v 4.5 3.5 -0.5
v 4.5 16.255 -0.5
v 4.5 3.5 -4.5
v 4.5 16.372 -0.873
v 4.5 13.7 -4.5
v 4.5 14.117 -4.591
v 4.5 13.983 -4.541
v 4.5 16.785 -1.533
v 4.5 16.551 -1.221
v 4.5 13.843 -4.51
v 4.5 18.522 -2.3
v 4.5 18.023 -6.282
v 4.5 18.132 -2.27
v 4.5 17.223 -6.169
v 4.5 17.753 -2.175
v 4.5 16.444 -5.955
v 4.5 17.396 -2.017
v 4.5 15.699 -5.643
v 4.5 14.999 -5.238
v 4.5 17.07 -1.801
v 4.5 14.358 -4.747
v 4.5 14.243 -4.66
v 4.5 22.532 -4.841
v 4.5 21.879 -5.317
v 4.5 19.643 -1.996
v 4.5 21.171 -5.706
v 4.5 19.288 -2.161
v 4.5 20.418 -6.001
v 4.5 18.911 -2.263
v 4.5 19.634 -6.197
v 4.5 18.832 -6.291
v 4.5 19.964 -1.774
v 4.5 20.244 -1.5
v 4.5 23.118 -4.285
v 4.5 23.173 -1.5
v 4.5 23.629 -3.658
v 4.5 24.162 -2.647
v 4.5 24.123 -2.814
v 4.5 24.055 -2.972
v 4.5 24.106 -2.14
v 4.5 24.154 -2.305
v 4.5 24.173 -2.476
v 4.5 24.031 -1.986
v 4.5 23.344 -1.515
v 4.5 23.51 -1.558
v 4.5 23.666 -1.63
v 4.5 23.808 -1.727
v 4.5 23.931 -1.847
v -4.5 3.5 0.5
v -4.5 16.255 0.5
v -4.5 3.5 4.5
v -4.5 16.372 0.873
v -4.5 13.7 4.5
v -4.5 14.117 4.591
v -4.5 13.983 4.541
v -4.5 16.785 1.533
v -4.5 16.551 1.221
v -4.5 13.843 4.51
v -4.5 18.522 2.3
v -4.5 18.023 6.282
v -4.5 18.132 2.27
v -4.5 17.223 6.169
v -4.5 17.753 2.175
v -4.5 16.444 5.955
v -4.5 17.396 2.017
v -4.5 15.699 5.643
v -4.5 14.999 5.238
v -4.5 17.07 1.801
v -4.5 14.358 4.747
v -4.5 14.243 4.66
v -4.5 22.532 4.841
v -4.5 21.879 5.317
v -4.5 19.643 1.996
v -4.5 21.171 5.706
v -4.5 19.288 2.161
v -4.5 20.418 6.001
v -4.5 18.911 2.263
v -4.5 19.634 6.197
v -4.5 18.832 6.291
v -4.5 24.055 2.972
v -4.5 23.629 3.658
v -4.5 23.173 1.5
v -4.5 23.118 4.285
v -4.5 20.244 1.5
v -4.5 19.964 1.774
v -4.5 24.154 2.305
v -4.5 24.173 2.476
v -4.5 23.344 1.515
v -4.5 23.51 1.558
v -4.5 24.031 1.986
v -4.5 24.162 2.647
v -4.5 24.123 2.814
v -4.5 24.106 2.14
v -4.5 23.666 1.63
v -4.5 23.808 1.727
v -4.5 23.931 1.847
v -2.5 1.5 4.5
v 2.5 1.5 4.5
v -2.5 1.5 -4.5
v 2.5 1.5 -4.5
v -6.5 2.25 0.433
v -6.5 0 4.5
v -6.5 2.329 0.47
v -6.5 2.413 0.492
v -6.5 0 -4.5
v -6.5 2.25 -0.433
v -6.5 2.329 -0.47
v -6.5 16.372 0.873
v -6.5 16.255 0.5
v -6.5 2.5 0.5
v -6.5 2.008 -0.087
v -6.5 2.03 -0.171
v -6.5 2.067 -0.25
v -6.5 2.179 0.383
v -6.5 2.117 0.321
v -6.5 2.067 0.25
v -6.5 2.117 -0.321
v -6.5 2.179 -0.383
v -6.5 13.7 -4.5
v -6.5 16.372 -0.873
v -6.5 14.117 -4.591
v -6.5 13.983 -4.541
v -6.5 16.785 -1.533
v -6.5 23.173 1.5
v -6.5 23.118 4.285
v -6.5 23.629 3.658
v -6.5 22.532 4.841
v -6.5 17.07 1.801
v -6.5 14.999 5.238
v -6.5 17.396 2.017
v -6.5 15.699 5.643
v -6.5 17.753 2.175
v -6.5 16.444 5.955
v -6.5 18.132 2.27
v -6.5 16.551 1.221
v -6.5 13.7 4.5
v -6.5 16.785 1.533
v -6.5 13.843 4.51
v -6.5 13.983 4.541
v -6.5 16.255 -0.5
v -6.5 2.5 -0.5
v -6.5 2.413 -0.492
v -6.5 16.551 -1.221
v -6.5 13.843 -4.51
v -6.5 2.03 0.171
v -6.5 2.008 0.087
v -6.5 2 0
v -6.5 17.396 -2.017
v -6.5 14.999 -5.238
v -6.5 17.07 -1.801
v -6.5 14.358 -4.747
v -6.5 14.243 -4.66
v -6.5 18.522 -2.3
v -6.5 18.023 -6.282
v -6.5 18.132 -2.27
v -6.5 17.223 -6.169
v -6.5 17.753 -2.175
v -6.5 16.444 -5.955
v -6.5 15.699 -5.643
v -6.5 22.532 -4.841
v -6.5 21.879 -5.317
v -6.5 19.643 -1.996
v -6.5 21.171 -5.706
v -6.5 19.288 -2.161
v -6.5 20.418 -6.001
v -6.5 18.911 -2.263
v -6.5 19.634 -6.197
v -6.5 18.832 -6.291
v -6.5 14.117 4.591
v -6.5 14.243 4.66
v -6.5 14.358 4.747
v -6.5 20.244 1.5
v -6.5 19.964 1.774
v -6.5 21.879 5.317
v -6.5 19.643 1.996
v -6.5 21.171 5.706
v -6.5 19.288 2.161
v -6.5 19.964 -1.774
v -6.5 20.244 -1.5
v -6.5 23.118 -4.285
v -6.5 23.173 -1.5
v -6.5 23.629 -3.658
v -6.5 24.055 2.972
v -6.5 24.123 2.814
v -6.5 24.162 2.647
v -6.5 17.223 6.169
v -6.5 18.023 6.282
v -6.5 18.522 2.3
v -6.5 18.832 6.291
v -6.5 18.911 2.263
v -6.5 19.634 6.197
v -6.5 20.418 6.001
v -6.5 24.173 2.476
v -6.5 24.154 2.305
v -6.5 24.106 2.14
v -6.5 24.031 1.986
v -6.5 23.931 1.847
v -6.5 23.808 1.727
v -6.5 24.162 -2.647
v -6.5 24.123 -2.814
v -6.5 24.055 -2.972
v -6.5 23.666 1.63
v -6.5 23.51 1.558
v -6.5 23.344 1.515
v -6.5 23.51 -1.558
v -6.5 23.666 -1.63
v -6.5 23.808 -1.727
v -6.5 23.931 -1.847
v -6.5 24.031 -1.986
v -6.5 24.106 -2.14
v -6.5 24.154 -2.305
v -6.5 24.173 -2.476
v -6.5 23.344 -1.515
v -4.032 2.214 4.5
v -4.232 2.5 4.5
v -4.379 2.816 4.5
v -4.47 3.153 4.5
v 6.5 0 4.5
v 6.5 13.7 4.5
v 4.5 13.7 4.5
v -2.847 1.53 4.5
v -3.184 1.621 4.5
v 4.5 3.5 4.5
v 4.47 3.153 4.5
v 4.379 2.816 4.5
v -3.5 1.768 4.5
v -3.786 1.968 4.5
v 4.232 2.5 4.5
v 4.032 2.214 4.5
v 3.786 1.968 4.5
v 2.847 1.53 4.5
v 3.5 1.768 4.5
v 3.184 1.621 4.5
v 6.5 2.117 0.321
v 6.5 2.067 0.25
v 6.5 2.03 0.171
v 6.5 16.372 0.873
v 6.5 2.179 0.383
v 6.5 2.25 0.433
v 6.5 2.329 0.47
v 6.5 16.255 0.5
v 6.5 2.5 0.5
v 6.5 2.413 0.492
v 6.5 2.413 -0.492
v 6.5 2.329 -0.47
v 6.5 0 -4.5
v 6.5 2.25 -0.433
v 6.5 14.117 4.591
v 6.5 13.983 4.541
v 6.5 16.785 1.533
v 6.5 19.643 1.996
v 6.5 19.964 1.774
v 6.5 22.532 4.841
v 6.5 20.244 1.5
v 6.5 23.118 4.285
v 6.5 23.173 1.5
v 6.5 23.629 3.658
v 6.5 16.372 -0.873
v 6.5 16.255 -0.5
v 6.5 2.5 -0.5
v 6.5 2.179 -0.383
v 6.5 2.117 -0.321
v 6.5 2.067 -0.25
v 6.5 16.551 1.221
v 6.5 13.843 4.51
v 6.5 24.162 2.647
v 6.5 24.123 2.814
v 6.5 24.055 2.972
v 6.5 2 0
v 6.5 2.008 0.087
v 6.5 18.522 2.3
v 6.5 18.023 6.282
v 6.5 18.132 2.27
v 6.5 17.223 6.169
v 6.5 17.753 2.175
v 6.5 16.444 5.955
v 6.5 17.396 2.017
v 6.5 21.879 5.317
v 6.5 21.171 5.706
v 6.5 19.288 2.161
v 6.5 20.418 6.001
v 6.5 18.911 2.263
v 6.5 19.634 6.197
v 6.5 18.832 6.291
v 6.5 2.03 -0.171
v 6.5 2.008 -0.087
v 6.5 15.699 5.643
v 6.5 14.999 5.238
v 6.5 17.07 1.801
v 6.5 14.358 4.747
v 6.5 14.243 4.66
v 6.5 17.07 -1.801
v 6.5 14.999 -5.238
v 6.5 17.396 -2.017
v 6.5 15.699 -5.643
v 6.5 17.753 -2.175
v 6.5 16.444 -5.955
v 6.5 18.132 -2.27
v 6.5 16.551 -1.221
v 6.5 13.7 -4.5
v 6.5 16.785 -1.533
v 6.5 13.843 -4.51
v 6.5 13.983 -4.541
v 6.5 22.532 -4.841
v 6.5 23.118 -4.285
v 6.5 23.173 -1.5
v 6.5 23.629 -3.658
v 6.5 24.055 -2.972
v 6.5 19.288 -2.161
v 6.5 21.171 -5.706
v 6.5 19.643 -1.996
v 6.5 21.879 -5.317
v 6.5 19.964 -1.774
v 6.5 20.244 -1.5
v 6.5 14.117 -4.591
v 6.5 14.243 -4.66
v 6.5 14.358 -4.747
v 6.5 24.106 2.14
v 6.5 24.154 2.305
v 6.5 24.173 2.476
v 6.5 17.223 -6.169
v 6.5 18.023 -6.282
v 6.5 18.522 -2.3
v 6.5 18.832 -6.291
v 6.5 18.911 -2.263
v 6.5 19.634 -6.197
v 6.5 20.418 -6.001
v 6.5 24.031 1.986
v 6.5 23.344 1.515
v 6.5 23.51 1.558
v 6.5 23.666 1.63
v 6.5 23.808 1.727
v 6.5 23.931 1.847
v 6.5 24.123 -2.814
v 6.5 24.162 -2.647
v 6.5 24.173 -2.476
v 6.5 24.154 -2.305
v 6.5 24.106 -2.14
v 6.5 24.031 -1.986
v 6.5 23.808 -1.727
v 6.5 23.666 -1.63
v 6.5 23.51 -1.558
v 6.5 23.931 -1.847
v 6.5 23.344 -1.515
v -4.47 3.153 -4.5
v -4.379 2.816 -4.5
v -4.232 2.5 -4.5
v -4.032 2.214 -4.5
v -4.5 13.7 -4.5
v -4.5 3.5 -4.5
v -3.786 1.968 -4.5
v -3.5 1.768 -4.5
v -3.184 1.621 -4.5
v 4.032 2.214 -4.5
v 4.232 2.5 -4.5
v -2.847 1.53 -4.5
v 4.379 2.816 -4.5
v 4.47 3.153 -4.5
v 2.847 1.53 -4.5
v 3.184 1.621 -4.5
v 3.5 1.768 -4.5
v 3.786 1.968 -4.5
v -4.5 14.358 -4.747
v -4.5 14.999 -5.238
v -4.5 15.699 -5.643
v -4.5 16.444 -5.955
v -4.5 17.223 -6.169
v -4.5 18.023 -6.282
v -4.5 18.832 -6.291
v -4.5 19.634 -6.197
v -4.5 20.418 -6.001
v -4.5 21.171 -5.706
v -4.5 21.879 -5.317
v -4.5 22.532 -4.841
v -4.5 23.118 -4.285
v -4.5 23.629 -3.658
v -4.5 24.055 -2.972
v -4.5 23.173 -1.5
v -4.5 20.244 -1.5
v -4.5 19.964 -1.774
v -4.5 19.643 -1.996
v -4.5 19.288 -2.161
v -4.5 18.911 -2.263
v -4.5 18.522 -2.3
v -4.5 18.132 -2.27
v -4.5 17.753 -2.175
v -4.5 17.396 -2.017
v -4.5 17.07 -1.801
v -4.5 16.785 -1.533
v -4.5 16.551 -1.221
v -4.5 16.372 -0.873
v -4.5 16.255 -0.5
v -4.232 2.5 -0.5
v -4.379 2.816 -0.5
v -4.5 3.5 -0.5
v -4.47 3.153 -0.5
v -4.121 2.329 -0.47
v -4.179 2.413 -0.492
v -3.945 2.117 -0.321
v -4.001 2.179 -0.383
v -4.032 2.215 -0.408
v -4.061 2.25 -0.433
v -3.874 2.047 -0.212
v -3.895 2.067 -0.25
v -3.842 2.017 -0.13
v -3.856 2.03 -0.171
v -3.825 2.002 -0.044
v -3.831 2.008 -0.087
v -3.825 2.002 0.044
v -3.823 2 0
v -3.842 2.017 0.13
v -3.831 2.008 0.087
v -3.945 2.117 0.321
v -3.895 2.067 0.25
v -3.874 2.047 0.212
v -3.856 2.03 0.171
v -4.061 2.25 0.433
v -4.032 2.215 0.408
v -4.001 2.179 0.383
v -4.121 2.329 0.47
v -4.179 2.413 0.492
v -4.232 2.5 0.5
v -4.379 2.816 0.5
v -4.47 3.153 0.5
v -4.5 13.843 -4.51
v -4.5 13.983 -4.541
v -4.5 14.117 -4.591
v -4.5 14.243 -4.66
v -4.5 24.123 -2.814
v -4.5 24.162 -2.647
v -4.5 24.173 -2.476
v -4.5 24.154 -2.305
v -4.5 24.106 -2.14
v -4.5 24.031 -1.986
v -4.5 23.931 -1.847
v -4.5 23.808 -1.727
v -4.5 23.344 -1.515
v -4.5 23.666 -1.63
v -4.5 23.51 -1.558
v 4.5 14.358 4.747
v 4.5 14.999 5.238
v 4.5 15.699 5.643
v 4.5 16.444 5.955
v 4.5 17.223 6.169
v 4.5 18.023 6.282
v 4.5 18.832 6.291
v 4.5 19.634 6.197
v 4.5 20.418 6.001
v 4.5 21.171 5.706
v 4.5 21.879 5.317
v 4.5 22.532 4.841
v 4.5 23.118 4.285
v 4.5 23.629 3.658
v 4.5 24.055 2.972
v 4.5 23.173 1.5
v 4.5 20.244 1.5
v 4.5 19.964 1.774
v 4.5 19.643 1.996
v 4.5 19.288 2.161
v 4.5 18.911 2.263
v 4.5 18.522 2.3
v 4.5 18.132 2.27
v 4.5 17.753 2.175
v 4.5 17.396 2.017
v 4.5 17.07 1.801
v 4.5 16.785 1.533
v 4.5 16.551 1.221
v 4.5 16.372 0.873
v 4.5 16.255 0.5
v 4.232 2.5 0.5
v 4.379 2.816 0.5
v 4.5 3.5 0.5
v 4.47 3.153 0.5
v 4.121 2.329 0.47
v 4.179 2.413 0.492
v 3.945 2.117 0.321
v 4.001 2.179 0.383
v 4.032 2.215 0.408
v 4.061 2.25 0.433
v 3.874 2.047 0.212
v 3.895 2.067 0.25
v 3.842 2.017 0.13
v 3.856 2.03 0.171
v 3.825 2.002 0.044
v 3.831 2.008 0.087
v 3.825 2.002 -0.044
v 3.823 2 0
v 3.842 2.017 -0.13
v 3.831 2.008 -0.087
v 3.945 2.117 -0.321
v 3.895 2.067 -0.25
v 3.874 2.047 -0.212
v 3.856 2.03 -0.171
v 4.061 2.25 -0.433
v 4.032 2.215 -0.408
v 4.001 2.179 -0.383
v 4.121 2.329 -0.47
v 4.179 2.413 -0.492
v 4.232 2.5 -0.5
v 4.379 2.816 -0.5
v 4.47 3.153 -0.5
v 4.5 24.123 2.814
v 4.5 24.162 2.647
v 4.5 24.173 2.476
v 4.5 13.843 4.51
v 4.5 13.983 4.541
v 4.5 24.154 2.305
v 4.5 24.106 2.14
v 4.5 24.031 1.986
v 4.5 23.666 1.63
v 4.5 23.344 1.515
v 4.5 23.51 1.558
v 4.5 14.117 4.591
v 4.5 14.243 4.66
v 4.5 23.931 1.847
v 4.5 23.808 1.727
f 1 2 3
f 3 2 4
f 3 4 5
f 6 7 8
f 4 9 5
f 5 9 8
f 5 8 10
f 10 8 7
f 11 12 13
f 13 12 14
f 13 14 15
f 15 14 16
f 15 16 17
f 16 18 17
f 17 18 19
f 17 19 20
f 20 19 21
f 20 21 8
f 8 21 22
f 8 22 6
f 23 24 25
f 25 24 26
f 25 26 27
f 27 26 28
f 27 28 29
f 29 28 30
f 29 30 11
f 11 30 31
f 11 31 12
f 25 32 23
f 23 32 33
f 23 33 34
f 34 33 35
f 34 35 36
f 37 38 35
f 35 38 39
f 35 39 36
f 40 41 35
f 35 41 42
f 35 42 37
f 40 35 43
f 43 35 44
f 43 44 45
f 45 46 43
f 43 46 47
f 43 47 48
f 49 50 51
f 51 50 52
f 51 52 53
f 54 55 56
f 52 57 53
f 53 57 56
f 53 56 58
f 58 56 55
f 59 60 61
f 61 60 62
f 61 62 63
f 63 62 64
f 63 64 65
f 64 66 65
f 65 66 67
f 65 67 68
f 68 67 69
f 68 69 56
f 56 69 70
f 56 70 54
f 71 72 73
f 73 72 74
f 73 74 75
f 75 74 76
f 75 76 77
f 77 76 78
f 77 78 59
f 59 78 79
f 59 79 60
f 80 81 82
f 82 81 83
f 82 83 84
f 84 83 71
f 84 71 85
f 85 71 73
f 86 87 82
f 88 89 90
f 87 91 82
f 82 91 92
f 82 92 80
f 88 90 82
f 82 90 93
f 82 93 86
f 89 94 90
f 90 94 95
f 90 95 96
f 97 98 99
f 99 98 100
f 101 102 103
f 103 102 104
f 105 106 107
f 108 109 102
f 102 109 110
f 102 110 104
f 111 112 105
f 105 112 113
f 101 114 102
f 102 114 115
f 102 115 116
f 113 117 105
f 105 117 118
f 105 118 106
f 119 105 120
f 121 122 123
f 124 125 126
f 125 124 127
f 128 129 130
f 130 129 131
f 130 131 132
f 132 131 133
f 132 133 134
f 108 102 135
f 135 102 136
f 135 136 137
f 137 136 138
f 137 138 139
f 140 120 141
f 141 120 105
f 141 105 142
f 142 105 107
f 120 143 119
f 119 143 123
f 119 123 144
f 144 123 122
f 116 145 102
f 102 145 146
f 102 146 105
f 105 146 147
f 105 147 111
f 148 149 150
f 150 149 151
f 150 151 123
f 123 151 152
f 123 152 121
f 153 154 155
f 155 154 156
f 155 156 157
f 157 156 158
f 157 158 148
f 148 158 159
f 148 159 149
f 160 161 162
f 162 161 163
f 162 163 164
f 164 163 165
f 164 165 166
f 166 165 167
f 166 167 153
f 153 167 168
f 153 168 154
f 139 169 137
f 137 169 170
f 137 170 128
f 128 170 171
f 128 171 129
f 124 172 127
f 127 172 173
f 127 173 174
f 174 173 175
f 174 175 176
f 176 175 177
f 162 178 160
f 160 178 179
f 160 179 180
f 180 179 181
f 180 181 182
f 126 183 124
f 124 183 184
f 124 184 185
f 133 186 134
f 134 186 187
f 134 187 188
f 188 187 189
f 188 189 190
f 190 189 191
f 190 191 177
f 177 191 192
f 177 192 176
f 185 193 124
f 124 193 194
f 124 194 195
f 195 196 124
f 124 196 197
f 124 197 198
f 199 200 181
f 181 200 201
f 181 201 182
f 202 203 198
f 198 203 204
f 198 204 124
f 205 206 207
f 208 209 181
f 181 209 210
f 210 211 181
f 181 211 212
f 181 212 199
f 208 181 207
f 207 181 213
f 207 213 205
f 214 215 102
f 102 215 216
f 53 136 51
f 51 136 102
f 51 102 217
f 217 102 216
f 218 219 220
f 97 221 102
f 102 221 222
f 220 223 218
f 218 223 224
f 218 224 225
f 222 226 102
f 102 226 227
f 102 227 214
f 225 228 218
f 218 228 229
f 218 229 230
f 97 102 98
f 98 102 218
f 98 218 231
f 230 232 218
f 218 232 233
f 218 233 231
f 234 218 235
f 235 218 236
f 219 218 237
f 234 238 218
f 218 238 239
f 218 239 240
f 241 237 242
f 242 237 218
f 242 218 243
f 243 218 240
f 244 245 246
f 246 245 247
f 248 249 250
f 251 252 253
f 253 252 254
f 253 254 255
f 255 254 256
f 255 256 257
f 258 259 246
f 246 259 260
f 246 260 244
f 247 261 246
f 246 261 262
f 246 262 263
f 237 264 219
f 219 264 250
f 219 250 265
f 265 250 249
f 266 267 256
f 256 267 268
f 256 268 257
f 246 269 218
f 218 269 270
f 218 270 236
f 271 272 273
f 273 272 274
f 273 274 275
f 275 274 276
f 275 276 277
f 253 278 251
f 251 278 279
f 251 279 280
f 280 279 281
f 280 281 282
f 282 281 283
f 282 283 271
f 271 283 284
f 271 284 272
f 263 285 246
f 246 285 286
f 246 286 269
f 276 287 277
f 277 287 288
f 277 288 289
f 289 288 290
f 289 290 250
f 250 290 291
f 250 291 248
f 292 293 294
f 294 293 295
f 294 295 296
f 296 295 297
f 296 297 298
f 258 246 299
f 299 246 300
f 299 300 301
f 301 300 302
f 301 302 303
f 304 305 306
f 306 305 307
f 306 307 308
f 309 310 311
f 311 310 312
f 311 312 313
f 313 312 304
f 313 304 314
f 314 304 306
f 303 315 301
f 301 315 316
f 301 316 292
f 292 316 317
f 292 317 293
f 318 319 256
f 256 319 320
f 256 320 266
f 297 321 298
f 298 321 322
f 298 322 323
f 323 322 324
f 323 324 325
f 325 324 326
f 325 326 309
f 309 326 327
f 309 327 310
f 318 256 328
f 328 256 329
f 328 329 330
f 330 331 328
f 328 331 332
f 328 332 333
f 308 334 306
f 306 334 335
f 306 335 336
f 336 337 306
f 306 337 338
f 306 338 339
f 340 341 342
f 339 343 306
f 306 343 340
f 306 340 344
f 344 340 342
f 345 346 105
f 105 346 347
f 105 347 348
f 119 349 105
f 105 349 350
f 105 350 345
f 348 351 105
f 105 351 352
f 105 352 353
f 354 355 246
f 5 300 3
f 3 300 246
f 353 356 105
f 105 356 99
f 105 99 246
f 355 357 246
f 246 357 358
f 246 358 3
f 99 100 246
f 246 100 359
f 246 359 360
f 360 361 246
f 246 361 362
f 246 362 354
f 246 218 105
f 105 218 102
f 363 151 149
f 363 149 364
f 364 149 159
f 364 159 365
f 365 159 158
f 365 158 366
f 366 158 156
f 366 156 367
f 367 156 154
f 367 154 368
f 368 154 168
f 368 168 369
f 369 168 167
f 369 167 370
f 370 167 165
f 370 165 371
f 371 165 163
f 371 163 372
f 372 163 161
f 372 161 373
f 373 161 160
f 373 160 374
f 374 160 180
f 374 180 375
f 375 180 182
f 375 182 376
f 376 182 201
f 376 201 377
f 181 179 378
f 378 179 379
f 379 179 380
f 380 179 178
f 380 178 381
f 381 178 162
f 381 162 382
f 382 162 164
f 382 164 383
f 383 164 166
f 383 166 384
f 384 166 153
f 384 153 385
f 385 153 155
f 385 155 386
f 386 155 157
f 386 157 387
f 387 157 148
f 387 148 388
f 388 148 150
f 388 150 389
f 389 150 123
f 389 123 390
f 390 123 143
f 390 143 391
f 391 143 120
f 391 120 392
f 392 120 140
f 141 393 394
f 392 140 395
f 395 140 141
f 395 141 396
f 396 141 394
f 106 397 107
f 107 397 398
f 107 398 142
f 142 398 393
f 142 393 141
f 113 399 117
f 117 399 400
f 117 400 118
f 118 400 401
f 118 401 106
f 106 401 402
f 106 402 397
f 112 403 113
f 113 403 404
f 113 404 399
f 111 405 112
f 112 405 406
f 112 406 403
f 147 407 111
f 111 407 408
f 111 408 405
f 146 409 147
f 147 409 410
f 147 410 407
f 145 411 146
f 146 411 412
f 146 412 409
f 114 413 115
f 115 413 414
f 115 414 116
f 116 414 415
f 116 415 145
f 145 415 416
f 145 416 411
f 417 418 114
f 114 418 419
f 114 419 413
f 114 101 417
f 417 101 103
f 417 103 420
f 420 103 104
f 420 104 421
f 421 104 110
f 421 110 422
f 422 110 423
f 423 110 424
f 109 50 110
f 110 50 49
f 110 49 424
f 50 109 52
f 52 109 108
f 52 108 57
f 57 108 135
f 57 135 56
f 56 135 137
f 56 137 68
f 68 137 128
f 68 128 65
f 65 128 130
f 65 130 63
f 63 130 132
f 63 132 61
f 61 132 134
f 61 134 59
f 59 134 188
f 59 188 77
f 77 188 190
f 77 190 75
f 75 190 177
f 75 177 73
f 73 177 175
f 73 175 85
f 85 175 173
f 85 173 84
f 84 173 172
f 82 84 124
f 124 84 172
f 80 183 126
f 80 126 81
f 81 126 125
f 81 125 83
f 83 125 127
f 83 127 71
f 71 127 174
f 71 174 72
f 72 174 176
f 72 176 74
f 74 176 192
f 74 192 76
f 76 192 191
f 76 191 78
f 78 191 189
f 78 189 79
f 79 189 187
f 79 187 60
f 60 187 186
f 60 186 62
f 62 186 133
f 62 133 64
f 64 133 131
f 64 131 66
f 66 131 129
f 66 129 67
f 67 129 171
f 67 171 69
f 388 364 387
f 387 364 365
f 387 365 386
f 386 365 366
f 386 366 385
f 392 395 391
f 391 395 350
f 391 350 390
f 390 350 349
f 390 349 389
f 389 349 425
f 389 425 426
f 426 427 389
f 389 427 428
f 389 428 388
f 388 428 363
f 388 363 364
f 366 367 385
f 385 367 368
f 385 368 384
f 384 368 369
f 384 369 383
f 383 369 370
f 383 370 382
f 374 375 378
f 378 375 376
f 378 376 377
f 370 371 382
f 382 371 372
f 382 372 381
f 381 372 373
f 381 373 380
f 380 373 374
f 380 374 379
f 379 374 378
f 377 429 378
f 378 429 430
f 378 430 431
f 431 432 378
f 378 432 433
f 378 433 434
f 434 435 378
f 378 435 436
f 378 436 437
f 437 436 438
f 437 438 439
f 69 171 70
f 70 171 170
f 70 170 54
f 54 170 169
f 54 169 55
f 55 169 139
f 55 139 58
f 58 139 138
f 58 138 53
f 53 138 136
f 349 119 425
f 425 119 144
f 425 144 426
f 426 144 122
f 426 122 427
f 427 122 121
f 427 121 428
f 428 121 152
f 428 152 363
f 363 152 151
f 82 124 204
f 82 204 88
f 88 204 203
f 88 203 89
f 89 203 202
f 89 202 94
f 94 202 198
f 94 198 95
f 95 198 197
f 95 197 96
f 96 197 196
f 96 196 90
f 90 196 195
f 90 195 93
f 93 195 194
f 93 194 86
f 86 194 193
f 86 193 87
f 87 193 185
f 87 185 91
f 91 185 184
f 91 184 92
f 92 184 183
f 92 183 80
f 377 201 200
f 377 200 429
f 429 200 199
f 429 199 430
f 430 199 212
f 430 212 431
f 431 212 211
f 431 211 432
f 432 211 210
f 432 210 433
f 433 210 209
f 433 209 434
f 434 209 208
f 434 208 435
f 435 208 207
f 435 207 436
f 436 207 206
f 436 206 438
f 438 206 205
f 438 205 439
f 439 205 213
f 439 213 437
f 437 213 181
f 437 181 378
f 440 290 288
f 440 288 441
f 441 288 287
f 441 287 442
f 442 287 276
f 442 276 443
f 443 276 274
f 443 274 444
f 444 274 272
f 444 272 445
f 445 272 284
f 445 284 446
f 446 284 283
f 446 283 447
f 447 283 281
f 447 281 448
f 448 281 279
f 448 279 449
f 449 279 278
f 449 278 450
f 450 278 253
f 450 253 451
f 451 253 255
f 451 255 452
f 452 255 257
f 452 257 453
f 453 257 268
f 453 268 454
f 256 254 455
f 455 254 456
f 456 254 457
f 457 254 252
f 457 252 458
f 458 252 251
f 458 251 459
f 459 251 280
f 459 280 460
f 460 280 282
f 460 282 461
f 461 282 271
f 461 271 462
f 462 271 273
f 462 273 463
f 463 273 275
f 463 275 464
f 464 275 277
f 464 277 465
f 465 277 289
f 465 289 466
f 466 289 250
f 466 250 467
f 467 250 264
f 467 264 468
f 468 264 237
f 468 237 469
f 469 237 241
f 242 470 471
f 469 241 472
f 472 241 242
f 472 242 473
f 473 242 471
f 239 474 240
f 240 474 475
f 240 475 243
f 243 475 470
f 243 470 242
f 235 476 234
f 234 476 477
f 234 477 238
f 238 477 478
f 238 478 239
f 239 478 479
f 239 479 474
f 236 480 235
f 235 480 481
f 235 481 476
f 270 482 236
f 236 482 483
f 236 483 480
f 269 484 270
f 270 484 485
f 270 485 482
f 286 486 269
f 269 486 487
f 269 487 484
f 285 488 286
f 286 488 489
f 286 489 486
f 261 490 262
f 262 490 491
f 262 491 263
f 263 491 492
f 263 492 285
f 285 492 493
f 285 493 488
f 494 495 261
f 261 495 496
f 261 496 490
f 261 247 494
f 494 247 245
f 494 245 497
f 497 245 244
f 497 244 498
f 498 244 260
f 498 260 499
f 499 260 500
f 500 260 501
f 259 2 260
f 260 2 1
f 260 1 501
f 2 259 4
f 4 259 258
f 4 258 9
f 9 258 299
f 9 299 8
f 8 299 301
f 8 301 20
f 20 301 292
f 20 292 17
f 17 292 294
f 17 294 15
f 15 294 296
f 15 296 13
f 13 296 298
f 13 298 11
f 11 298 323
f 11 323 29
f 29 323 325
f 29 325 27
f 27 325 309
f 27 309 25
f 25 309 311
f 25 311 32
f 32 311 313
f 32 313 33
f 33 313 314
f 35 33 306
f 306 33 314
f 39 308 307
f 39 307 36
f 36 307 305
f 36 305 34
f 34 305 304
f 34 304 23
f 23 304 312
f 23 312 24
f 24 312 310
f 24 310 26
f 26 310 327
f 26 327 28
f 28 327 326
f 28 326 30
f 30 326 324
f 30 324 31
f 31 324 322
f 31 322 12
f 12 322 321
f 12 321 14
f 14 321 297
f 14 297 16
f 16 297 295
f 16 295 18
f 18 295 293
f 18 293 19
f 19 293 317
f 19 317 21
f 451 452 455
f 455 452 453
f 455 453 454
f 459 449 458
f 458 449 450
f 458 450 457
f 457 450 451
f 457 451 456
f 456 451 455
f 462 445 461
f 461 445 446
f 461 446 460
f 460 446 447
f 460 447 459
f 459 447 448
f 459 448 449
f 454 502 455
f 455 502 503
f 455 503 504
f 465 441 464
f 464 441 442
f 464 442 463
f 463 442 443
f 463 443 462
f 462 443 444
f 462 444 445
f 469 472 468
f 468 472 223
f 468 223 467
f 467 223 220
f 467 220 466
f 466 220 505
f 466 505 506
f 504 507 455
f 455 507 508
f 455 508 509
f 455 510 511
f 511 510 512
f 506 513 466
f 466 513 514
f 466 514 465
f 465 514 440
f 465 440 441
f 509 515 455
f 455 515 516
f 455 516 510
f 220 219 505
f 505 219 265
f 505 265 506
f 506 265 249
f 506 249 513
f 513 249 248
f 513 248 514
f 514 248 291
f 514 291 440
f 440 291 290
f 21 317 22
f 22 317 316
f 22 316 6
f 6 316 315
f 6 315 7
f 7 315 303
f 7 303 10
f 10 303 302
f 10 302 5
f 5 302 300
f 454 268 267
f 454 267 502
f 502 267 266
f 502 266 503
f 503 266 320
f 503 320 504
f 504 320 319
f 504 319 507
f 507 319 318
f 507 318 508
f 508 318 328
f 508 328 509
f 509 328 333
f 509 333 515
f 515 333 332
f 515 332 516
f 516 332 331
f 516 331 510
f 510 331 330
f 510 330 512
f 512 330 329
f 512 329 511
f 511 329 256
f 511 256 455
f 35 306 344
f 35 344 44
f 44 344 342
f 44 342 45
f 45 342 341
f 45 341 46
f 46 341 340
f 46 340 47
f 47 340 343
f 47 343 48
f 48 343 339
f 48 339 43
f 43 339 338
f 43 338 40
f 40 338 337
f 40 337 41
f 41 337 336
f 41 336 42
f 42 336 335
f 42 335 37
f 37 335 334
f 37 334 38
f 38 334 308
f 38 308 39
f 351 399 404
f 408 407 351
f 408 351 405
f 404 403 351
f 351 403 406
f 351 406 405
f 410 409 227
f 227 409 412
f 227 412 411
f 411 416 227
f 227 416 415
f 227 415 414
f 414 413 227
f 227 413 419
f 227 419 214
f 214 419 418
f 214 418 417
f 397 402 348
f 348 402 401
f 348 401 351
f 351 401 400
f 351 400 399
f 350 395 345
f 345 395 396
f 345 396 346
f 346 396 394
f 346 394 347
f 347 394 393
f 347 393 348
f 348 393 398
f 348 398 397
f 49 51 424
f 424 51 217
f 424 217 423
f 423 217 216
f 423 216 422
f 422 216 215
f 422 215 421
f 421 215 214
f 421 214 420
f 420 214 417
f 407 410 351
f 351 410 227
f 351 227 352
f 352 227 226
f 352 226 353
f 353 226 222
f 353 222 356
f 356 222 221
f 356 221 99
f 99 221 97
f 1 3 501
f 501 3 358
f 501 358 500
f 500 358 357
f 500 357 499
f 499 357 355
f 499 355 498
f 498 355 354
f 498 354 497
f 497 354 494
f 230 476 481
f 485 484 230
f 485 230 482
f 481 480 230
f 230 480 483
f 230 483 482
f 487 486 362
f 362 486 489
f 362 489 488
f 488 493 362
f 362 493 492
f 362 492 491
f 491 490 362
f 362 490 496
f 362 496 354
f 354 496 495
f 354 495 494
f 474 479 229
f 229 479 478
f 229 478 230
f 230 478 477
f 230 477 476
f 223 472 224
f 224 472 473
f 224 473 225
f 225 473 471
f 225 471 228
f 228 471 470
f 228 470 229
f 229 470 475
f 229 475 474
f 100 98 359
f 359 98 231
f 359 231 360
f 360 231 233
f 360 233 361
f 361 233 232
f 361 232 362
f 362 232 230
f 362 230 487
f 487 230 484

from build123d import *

# Parameters (mm, degrees)
SKETCH1_W            = 13
SKETCH1_H            = 9
BOSS_EXTRUDE1_DEPTH  = 1.5
BOSS_EXTRUDE2_DEPTH  = 2
FILLET1_R            = 1
FILLET1_OF_MIRROR1_R = 1
FILLET2_START        = -4.5
FILLET2_DEPTH        = 4
FILLET2_START_2      = 0.5
FILLET2_2_DEPTH      = 4
FILLET2_3_DEPTH      = 1.695635927
FILLET2_START_3      = 2.821367992
FILLET2_4_DEPTH      = 1.678632008
FILLET2_START_4      = -0.5
FILLET2_5_DEPTH      = 1
FILLET2_6_DEPTH      = 1


with BuildPart() as part:
    # Sketch1 → Boss-Extrude1 (new body)
    with BuildSketch(Plane(origin=(0, 0, 0), x_dir=(1, 0, 0), z_dir=(0, 1, 0))):
        Rectangle(SKETCH1_W, SKETCH1_H)
    extrude(amount=BOSS_EXTRUDE1_DEPTH)

    # Sketch2 → Boss-Extrude2 (add)
    with BuildSketch(Plane.ZY.offset(6.5)):
        with BuildLine():
            Line((-4.5, 1.5), (4.5, 1.5))
            Line((4.5, 1.5), (4.5, 14.090918463))
            ThreePointArc((4.5, 14.090918463), (6.058811408, 20.2265006), (1.5, 24.618823416))
            Line((1.5, 24.618823416), (1.5, 20.243559577))
            ThreePointArc((1.5, 20.243559577), (2.230950643, 17.940661794), (0.5, 16.255005568))
            Line((0.5, 16.255005568), (0.5, 2.5))
            ThreePointArc((0.5, 2.5), (0, 2), (-0.5, 2.5))
            Line((-0.5, 2.5), (-0.5, 16.255005568))
            ThreePointArc((-0.5, 16.255005568), (-2.230950643, 17.940661794), (-1.5, 20.243559577))
            Line((-1.5, 20.243559577), (-1.5, 24.618823416))
            ThreePointArc((-1.5, 24.618823416), (-6.058811408, 20.2265006), (-4.5, 14.090918463))
            Line((-4.5, 14.090918463), (-4.5, 1.5))
        make_face()
    boss_extrude2 = extrude(amount=-BOSS_EXTRUDE2_DEPTH)

    # Fillet1
    fillet1_edges = [part.edges().sort_by_distance(p)[0] for p in [
        (-5.5, 14.090918463, -4.5),
        (-5.5, 24.618823416, -1.5),
        (-5.5, 24.618823416, 1.5),
        (-5.5, 14.090918463, 4.5),
    ]]
    fillet(fillet1_edges, radius=FILLET1_R)

    # Mirror1: Boss-Extrude2 across plane
    add(boss_extrude2.mirror(Plane(origin=(0, 0, 0), x_dir=(0, 0, 1), z_dir=(1, 0, 0))))

    # Fillet1 of Mirror1
    fillet1_of_mirror1_edges = [part.edges().sort_by_distance(p)[0] for p in [
        (5.5, 14.090918463, -4.5),
        (5.5, 24.618823416, -1.5),
        (5.5, 24.618823416, 1.5),
        (5.5, 14.090918463, 4.5),
    ]]
    fillet(fillet1_of_mirror1_edges, radius=FILLET1_OF_MIRROR1_R)

    # Fillet2: read off the stored shape, not the designer's step
    # Fillet2 outline → Fillet2 (add)
    with BuildSketch(Plane.XY.offset(FILLET2_START)):
        with BuildLine():
            ThreePointArc((4.5, 3.5), (3.914213562, 2.085786438), (2.5, 1.5))
            Line((2.5, 1.5), (4.5, 1.5))
            Line((4.5, 1.5), (4.5, 3.5))
        make_face()
        with BuildLine():
            ThreePointArc((-2.5, 1.5), (-3.914213562, 2.085786438), (-4.5, 3.5))
            Line((-4.5, 3.5), (-4.5, 1.5))
            Line((-4.5, 1.5), (-2.5, 1.5))
        make_face()
    extrude(amount=FILLET2_DEPTH)

    # Fillet2 2 outline → Fillet2 2 (add)
    with BuildSketch(Plane.XY.offset(FILLET2_START_2)):
        with BuildLine():
            ThreePointArc((4.5, 3.5), (3.914213562, 2.085786438), (2.5, 1.5))
            Line((2.5, 1.5), (4.5, 1.5))
            Line((4.5, 1.5), (4.5, 3.5))
        make_face()
        with BuildLine():
            ThreePointArc((-2.5, 1.5), (-3.914213562, 2.085786438), (-4.5, 3.5))
            Line((-4.5, 3.5), (-4.5, 1.5))
            Line((-4.5, 1.5), (-2.5, 1.5))
        make_face()
    extrude(amount=FILLET2_2_DEPTH)

    # Fillet2 3 outline → Fillet2 3 (add)
    with BuildSketch(Plane.YZ.offset(FILLET2_START)):
        with BuildLine():
            Line((1.5, -0.5), (2.5, -0.5))
            ThreePointArc((2.5, -0.5), (2, 0), (2.5, 0.5))
            Line((2.5, 0.5), (1.5, 0.5))
            Line((1.5, 0.5), (1.5, -0.5))
        make_face()
    extrude(amount=FILLET2_3_DEPTH)

    # Fillet2 4 outline → Fillet2 4 (add)
    with BuildSketch(Plane.YZ.offset(FILLET2_START_3)):
        with BuildLine():
            Line((1.5, -0.5), (2.5, -0.5))
            ThreePointArc((2.5, -0.5), (2, 0), (2.5, 0.5))
            Line((2.5, 0.5), (1.5, 0.5))
            Line((1.5, 0.5), (1.5, -0.5))
        make_face()
    extrude(amount=FILLET2_4_DEPTH)

    # Fillet2 5 outline → Fillet2 5 (cut)
    with BuildSketch(Plane.XY.offset(FILLET2_START_4)):
        with BuildLine():
            Line((-4.5, 4), (-4.5, 3.5))
            ThreePointArc((-4.5, 3.5), (-4.018013199, 2.19783414), (-2.804364073, 1.523295037))
            Line((-2.804364073, 1.523295037), (-2.804364073, 4))
            Line((-2.804364073, 4), (-4.5, 4))
        make_face()
        with BuildLine():
            Line((4.5, 4), (2.821367992, 4))
            Line((2.821367992, 4), (2.821367992, 1.525988193))
            ThreePointArc((2.821367992, 1.525988193), (4.02360362, 2.204379683), (4.5, 3.5))
            Line((4.5, 3.5), (4.5, 4))
        make_face()
    extrude(amount=FILLET2_5_DEPTH, mode=Mode.SUBTRACT)

    # Fillet2 6 outline → Fillet2 6 (add)
    with BuildSketch(Plane.XY.offset(FILLET2_START_4)):
        with BuildLine():
            ThreePointArc((-2.5, 1.5), (-2.652627117, 1.505832263), (-2.804364073, 1.523295037))
            Line((-2.804364073, 1.523295037), (-2.804364073, 1.5))
            Line((-2.804364073, 1.5), (-2.5, 1.5))
        make_face()
        with BuildLine():
            ThreePointArc((2.821367992, 1.525988193), (2.661208539, 1.506507636), (2.5, 1.5))
            Line((2.5, 1.5), (2.821367992, 1.499999997))
            Line((2.821367992, 1.499999997), (2.821367992, 1.525988193))
        make_face()
    extrude(amount=FILLET2_6_DEPTH)


solid = part.part
